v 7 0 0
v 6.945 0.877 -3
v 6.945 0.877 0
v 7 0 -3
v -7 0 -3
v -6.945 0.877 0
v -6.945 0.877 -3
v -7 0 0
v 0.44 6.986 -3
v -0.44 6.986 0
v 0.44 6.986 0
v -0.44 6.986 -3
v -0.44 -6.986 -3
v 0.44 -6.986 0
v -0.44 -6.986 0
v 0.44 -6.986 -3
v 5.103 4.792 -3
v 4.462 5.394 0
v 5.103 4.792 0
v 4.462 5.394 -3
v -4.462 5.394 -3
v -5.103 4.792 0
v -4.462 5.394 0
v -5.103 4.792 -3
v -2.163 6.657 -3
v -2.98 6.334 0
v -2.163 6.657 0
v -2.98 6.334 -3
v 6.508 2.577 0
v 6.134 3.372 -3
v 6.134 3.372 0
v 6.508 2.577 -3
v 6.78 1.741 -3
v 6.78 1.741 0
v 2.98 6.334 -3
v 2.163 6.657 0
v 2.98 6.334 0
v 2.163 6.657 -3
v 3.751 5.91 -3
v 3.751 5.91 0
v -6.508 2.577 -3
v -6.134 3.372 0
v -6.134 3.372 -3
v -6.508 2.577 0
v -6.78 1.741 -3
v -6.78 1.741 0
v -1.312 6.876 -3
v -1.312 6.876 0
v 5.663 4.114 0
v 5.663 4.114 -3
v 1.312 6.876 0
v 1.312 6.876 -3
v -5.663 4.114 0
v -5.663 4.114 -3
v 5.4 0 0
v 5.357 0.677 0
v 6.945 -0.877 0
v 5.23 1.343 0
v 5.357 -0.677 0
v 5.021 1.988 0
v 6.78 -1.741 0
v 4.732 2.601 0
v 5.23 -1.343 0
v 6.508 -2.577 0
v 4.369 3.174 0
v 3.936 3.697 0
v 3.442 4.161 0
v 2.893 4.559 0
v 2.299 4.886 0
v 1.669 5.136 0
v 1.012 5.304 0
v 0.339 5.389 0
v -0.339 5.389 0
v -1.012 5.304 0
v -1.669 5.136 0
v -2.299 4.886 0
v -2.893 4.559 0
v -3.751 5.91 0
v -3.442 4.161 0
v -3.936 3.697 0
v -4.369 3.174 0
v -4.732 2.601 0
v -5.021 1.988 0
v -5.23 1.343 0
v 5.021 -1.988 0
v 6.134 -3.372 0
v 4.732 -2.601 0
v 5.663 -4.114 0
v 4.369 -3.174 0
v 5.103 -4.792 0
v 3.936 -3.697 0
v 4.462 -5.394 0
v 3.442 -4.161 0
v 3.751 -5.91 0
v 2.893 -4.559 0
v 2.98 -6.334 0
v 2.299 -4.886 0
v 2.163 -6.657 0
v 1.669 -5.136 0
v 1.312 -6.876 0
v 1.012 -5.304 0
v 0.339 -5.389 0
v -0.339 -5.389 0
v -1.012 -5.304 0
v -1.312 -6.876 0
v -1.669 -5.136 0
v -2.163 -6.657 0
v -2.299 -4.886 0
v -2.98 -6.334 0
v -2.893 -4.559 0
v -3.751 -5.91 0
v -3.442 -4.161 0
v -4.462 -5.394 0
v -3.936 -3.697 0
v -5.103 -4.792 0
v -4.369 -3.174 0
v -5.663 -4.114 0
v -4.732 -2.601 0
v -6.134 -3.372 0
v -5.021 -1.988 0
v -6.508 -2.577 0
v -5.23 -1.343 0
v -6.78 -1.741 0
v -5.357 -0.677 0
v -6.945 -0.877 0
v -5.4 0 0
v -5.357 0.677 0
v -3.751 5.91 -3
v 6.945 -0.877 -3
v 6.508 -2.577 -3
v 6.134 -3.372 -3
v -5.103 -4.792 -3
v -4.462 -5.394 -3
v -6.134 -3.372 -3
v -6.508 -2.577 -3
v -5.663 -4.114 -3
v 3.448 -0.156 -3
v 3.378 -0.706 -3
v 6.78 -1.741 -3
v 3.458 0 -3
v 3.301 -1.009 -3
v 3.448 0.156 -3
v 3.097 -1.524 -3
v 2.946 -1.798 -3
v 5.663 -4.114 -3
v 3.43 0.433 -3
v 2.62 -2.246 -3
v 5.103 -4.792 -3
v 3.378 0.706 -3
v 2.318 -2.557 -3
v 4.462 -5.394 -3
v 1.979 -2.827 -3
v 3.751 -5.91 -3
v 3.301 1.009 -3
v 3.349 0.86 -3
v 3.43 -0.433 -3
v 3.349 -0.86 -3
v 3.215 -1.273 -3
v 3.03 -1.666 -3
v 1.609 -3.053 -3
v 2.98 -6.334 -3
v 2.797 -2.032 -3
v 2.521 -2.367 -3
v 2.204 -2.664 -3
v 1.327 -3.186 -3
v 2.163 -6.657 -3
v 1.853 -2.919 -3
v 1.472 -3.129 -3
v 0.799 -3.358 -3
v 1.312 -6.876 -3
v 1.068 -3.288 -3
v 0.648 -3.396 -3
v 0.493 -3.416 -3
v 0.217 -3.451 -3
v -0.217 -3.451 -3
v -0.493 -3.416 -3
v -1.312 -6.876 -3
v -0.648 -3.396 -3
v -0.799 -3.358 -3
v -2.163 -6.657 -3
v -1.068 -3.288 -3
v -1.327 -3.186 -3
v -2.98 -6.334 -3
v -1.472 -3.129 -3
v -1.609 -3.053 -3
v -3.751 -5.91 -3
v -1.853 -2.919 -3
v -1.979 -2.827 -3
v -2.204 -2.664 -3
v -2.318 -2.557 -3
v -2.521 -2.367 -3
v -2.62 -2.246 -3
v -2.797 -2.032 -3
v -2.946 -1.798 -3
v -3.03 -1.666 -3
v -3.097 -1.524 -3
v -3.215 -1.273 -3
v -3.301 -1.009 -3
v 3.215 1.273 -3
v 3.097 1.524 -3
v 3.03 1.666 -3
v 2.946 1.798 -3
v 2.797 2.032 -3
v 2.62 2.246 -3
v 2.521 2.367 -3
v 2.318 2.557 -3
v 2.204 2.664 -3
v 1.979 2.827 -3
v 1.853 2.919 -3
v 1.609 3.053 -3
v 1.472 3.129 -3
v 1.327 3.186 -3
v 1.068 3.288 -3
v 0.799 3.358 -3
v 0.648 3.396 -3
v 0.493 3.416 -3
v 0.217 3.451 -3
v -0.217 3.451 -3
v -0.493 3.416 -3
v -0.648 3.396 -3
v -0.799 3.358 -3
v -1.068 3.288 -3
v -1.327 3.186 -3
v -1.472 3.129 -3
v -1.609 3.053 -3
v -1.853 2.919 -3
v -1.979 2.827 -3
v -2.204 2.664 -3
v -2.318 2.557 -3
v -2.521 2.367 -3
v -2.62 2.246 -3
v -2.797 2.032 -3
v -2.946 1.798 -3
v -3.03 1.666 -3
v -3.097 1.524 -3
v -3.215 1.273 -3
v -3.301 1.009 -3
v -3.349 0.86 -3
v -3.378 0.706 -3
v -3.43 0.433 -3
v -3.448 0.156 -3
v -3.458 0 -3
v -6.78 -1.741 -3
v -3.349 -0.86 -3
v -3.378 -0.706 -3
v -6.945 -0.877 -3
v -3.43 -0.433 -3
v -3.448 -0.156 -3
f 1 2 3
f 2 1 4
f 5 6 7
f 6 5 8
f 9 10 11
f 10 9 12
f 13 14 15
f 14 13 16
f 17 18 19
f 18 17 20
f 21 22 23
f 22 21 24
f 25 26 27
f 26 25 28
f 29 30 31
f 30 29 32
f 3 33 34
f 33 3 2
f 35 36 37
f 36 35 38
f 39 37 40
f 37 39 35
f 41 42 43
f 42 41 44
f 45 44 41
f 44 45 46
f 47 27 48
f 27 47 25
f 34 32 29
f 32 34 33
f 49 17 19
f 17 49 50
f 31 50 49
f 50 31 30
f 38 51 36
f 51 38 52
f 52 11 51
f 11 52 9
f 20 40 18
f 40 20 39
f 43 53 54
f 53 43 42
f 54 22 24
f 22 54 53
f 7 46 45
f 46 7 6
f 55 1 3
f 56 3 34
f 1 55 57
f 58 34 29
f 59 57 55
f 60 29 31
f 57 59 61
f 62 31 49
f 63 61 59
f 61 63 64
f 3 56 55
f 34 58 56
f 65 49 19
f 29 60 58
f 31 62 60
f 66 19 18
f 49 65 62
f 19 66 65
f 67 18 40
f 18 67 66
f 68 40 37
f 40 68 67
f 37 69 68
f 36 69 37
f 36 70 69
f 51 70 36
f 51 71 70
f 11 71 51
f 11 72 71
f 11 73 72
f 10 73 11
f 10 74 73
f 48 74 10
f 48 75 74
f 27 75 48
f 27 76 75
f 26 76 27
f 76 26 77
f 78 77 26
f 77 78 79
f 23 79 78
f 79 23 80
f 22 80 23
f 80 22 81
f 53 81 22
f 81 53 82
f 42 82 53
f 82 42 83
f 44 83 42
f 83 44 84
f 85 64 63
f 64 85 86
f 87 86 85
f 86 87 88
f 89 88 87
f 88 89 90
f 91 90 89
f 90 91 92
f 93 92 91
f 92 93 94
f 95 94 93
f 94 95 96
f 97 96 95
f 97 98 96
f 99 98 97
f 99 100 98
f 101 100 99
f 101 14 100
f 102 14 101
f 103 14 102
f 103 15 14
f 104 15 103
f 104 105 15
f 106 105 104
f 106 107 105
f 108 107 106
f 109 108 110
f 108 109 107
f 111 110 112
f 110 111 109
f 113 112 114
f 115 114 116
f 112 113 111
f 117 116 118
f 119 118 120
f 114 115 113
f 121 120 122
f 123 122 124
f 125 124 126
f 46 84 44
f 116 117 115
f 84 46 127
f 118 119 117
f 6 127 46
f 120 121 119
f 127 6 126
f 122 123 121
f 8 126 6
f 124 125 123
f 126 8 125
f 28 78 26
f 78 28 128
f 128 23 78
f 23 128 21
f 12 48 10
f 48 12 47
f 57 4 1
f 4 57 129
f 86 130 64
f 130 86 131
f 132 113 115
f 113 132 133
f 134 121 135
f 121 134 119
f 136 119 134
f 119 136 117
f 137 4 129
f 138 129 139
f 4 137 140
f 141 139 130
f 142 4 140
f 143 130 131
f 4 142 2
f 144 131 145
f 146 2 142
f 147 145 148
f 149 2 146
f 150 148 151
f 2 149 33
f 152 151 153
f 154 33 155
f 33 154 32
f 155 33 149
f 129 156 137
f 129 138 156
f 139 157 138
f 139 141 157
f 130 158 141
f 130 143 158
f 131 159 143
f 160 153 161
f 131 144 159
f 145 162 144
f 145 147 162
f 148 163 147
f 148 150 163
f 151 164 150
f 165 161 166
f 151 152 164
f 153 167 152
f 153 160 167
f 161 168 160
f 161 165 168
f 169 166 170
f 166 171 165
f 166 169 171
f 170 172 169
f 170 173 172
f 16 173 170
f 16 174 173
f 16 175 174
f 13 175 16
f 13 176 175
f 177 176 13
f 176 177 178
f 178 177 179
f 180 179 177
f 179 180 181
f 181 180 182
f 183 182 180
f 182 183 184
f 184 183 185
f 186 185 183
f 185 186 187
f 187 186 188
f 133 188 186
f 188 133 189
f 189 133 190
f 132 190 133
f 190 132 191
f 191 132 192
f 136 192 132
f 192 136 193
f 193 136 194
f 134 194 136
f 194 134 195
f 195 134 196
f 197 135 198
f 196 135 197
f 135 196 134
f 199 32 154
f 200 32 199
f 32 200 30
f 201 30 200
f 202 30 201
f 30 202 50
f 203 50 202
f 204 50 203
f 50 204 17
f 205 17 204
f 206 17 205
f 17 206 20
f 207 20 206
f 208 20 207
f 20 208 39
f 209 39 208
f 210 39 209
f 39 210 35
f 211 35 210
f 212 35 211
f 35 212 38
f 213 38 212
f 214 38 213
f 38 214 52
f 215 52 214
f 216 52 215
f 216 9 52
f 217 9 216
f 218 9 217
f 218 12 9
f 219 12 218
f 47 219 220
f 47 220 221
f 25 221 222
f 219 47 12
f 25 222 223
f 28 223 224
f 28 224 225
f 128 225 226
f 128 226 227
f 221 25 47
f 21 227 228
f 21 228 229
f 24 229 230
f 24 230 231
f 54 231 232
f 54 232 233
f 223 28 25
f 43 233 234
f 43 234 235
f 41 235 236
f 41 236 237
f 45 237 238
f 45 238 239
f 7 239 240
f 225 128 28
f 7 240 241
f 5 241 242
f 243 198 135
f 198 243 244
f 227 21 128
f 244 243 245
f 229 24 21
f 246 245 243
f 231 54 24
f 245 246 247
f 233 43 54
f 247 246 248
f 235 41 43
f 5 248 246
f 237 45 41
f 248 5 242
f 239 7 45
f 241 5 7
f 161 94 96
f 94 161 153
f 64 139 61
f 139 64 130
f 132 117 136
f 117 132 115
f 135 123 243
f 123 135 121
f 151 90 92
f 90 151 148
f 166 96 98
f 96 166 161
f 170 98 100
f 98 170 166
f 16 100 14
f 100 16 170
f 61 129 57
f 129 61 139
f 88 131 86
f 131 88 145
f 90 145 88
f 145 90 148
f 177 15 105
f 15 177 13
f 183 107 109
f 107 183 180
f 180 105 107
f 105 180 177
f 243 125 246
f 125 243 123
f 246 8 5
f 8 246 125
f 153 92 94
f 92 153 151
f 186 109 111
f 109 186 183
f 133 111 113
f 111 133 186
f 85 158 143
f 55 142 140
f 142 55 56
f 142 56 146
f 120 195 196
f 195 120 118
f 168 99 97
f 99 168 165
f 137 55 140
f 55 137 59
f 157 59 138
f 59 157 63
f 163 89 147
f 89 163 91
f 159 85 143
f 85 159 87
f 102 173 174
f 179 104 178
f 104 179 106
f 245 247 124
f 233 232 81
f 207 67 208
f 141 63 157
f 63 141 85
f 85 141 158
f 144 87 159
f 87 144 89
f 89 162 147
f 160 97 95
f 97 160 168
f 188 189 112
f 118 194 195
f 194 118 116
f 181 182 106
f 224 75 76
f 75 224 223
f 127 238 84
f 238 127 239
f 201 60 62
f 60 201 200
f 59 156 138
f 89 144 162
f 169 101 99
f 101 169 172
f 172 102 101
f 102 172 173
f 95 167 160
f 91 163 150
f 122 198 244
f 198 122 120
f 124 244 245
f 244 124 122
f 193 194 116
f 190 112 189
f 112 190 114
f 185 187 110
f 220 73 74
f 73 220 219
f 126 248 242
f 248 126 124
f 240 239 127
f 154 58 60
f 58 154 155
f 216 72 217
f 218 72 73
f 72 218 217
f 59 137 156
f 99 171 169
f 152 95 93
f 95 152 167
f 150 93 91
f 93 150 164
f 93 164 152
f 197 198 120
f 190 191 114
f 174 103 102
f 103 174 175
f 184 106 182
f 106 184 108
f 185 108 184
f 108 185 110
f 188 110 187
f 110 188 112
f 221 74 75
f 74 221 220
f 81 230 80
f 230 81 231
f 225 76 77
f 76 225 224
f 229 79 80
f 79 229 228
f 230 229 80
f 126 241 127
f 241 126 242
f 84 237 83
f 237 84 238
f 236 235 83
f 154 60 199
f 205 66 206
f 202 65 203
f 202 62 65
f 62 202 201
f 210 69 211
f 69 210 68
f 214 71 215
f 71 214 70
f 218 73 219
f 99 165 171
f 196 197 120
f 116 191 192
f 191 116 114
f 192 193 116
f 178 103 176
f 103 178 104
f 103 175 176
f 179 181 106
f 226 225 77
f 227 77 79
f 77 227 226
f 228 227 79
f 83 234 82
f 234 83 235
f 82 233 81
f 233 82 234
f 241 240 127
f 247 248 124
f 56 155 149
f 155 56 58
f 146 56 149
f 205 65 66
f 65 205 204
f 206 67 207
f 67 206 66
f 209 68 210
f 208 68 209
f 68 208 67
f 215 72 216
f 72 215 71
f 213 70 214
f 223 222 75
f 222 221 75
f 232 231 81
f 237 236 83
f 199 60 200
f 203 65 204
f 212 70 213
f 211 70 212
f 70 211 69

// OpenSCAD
$fn = 50;


difference() {
	union() {
		translate(v = [0, 0, -3.0000000000]) {
			cylinder(h = 3, r = 7.0000000000);
		}
		translate(v = [0, 0, -6.0000000000]) {
			cylinder(h = 6, r = 2.8750000000);
		}
	}
	union() {
		translate(v = [0, 0, 0]) {
			rotate(a = [0, 0, 0]) {
				difference() {
					union() {
						translate(v = [0, 0, -6.0000000000]) {
							cylinder(h = 6, r = 2.6000000000);
						}
						translate(v = [0, 0, -3.9000000000]) {
							cylinder(h = 3.9000000000, r1 = 2.8750000000, r2 = 5.4000000000);
						}
						translate(v = [0, 0, -6.0000000000]) {
							cylinder(h = 6, r = 2.8750000000);
						}
						translate(v = [0, 0, -6.0000000000]) {
							cylinder(h = 6, r = 2.6000000000);
						}
					}
					union();
				}
			}
		}
	}
}
